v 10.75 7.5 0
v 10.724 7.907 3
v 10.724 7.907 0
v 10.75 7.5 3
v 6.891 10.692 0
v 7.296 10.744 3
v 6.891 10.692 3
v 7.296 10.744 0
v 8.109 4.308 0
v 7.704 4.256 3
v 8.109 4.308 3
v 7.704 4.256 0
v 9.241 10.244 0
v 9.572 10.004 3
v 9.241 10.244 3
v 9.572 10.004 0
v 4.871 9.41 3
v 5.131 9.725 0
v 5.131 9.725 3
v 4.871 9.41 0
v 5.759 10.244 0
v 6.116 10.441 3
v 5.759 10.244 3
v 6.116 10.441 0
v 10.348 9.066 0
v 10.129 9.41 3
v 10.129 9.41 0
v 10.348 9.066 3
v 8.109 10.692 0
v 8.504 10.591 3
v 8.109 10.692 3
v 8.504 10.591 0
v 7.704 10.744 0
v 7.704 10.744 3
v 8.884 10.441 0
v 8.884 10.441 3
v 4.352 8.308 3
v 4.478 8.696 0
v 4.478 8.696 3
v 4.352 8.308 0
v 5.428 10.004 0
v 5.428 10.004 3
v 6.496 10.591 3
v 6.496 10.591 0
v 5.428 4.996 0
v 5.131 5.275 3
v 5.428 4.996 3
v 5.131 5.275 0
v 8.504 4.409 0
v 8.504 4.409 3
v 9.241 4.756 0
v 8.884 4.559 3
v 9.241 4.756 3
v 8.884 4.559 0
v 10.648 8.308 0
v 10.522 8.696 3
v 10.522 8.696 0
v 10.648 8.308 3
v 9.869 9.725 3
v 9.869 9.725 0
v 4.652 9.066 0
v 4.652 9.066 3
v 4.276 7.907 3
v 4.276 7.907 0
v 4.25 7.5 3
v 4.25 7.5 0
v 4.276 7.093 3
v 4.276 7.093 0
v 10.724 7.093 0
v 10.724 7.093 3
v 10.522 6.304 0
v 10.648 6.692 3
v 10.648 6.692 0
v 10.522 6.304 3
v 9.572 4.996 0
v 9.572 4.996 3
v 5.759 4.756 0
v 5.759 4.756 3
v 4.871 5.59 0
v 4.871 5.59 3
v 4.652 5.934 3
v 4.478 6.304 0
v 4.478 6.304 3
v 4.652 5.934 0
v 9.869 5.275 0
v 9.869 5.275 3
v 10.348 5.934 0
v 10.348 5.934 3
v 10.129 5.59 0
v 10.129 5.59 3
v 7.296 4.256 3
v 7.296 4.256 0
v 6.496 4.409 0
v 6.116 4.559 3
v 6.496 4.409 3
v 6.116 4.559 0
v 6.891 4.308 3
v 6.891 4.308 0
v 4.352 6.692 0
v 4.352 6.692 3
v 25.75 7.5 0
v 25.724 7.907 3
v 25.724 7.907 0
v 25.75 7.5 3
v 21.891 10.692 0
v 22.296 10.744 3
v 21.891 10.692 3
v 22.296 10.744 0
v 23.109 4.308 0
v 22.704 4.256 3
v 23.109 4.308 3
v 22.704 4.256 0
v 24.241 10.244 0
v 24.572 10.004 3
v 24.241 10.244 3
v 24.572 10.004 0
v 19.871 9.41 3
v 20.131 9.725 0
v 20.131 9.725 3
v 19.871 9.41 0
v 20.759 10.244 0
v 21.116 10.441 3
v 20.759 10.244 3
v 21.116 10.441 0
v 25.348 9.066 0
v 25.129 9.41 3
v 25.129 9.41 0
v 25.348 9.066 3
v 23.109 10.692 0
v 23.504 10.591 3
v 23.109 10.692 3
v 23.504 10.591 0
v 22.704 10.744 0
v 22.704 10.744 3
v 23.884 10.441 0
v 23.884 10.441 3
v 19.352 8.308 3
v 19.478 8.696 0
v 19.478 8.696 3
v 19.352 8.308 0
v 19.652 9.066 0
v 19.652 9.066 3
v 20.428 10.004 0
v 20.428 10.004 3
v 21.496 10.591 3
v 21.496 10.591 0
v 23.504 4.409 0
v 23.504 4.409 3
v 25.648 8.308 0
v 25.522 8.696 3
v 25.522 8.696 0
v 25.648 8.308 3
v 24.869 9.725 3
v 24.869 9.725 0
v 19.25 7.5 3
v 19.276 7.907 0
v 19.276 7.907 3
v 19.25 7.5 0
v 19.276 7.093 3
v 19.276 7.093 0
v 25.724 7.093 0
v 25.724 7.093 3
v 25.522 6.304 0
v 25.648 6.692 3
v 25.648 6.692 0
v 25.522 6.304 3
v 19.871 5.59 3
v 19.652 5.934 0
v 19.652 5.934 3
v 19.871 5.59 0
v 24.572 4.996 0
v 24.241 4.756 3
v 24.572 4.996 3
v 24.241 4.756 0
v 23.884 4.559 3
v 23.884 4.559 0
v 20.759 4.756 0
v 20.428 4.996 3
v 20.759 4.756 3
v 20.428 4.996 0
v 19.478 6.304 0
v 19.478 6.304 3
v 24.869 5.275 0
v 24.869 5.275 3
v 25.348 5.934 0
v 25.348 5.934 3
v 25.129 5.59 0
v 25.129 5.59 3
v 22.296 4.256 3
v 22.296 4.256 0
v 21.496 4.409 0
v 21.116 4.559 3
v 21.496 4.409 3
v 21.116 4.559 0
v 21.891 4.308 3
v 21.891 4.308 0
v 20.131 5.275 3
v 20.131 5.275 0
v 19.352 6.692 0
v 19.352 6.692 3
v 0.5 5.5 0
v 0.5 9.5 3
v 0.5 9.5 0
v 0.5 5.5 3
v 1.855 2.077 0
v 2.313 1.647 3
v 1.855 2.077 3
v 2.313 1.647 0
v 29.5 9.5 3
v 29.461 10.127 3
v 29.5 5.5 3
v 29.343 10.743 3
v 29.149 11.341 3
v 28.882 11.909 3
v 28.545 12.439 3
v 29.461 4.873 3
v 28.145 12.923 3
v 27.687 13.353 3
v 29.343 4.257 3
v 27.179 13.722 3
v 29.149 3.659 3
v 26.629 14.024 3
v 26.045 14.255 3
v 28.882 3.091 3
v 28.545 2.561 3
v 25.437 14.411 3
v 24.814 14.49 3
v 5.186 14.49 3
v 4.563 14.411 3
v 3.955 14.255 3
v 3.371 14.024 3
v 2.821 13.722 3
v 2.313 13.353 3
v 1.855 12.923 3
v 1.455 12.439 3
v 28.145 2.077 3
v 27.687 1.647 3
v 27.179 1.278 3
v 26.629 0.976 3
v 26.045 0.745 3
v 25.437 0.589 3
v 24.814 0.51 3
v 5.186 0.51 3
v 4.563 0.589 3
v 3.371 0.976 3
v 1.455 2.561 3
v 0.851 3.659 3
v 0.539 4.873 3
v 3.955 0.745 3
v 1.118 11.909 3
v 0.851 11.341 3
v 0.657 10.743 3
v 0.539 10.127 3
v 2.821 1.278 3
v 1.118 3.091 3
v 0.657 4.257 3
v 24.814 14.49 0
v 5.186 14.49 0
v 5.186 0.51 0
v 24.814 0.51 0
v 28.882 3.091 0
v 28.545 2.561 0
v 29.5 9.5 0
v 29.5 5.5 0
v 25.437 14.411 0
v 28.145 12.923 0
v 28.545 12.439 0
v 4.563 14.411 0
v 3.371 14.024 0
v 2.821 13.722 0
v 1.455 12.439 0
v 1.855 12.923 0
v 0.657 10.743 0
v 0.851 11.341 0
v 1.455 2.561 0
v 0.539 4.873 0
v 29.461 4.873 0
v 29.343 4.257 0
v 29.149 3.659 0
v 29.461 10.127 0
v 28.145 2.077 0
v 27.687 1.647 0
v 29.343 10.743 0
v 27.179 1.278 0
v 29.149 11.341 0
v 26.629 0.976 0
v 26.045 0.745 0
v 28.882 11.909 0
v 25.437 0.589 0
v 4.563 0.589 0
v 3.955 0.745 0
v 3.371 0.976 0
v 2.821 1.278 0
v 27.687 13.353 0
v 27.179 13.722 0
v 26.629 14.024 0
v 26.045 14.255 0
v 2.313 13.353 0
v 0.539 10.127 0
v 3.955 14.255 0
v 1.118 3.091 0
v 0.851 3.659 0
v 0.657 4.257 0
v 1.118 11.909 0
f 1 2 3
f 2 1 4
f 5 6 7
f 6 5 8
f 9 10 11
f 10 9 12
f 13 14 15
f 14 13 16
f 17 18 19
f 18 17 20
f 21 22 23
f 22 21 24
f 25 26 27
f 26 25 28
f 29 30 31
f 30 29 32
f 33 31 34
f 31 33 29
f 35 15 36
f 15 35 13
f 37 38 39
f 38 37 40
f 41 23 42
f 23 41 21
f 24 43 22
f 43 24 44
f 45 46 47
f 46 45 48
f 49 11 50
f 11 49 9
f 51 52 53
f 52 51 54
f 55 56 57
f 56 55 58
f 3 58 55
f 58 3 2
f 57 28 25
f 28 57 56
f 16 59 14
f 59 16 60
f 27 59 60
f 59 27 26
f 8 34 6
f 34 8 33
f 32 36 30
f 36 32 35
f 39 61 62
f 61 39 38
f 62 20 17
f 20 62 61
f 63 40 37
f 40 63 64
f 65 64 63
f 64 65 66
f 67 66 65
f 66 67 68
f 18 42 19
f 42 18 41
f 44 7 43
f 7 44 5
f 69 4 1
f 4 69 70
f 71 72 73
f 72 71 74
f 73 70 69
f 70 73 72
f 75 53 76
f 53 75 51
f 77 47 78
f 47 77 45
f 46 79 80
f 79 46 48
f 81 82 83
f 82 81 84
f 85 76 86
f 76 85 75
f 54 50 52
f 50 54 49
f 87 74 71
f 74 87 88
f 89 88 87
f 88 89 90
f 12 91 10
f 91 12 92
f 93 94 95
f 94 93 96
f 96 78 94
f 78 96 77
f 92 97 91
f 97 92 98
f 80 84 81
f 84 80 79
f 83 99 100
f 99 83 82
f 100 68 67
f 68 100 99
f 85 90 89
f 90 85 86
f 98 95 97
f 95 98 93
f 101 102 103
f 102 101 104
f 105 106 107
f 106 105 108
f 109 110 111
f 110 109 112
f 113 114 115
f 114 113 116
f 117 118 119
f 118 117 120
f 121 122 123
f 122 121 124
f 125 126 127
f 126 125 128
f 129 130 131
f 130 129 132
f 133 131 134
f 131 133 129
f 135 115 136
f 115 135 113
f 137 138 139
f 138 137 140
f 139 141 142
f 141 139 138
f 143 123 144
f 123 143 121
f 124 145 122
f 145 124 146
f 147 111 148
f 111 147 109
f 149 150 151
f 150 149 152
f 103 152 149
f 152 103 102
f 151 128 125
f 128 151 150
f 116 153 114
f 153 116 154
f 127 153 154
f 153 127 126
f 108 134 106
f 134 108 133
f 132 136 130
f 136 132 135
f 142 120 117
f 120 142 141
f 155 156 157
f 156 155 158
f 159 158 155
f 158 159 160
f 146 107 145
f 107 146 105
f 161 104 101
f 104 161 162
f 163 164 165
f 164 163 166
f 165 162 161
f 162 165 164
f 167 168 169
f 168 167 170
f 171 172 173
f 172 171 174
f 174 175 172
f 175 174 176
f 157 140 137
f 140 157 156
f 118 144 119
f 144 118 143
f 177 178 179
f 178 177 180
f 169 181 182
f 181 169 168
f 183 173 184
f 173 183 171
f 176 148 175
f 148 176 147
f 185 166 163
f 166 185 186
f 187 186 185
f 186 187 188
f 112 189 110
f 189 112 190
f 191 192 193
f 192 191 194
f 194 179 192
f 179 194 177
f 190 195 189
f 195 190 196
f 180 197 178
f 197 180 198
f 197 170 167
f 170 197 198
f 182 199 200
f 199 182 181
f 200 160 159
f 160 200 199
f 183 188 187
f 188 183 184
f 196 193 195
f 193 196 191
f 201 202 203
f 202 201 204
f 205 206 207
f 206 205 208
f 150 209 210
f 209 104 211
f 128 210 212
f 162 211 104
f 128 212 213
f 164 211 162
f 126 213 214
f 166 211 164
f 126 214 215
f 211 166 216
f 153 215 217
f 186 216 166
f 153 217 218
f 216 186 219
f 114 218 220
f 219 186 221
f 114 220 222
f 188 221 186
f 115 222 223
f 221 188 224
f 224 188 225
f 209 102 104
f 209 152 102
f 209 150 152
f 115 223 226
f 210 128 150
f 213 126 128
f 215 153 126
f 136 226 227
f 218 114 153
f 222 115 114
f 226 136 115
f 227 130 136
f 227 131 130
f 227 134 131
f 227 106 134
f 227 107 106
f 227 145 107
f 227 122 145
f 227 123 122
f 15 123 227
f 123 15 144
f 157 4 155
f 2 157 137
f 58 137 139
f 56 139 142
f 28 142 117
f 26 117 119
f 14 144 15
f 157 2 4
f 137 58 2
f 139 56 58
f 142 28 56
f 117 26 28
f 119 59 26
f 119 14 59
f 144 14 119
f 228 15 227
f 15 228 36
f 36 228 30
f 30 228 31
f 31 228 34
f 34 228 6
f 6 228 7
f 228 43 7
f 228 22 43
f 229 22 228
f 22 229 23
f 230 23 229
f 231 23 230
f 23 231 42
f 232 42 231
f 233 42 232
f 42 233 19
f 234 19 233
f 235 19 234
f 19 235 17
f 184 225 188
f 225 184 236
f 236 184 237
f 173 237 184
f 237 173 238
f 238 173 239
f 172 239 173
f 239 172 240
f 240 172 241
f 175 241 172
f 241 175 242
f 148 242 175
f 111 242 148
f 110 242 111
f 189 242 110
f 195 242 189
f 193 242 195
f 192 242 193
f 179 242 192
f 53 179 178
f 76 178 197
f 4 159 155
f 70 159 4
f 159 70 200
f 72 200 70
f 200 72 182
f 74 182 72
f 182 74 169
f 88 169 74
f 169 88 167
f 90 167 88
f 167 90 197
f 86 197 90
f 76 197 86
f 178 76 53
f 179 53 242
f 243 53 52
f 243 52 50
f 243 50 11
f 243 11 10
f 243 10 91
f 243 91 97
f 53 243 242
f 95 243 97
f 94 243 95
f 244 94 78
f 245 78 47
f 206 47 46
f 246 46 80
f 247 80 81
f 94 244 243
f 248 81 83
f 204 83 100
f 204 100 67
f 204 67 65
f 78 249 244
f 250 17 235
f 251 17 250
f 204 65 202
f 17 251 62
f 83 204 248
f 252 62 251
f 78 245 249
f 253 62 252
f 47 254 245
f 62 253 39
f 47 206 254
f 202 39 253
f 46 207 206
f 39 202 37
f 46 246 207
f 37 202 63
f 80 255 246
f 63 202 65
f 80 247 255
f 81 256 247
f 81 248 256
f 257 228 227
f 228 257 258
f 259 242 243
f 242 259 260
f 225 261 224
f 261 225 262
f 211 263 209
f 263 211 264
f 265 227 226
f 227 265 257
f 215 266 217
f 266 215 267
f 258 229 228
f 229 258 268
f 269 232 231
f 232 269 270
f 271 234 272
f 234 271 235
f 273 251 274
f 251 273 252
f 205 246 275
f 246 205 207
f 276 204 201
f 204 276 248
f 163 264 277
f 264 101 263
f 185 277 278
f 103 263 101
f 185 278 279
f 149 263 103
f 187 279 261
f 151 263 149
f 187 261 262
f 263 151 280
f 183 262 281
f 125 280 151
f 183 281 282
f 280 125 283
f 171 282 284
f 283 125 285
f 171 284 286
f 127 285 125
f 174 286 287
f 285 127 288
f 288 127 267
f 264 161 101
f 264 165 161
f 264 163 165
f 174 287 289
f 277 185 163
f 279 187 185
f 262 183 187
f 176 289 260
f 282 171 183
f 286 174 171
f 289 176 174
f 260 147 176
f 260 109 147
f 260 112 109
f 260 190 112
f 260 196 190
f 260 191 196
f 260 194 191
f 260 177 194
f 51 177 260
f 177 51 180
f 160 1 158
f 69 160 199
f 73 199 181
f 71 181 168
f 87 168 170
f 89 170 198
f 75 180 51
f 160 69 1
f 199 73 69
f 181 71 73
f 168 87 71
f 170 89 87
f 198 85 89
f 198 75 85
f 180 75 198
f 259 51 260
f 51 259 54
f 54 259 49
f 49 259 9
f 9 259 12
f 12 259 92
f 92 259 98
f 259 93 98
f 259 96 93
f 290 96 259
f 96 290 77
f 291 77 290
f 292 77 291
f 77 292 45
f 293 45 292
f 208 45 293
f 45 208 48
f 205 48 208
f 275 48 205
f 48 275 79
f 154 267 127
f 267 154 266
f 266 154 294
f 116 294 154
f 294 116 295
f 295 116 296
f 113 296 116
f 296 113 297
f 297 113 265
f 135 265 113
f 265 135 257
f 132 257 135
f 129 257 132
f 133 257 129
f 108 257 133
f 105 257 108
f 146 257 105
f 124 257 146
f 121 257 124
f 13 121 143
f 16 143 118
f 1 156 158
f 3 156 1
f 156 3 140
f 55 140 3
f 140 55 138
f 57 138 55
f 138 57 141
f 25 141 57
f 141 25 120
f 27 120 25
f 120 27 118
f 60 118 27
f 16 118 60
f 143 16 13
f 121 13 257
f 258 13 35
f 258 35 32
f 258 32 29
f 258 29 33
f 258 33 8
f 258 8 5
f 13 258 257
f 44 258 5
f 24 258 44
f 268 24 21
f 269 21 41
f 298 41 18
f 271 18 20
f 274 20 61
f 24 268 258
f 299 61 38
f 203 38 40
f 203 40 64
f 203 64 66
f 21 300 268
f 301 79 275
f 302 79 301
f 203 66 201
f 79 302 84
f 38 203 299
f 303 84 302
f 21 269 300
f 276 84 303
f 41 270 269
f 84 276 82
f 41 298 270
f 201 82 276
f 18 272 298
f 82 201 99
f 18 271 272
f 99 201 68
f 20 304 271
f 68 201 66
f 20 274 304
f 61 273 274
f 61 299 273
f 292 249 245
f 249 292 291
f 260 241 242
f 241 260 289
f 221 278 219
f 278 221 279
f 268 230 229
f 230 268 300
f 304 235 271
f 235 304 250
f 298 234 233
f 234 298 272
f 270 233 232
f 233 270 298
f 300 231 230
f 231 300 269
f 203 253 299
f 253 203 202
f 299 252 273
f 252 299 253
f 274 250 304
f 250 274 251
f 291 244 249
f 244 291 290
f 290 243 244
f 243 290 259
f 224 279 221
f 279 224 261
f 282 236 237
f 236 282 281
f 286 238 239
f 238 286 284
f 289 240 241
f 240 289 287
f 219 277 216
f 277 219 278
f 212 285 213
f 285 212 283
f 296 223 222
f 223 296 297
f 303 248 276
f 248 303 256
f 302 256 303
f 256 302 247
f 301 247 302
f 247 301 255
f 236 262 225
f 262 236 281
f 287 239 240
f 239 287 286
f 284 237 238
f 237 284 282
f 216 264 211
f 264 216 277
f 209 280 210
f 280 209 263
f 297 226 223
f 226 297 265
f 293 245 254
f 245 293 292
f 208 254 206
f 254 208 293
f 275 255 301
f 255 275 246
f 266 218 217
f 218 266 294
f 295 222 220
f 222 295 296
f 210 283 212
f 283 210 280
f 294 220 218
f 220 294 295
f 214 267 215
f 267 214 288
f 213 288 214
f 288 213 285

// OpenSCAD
// Generated by SolidPython 1.1.3 on 2023-01-30 13:24:47
$fn = 50;


difference() {
	union() {
		translate(v = [15.0000000000, 7.5000000000, 0]) {
			rotate(a = [0, 0, 0]) {
				hull() {
					translate(v = [-9.5000000000, 2.0000000000, 0]) {
						rotate(a = [0, 0, 0]) {
							translate(v = [0, 0, 0]) {
								rotate(a = [0, 0, 0]) {
									cylinder(h = 3, r = 5);
								}
							}
						}
					}
					translate(v = [9.5000000000, 2.0000000000, 0]) {
						rotate(a = [0, 0, 0]) {
							translate(v = [0, 0, 0]) {
								rotate(a = [0, 0, 0]) {
									cylinder(h = 3, r = 5);
								}
							}
						}
					}
					translate(v = [-9.5000000000, -2.0000000000, 0]) {
						rotate(a = [0, 0, 0]) {
							translate(v = [0, 0, 0]) {
								rotate(a = [0, 0, 0]) {
									cylinder(h = 3, r = 5);
								}
							}
						}
					}
					translate(v = [9.5000000000, -2.0000000000, 0]) {
						rotate(a = [0, 0, 0]) {
							translate(v = [0, 0, 0]) {
								rotate(a = [0, 0, 0]) {
									cylinder(h = 3, r = 5);
								}
							}
						}
					}
				}
			}
		}
	}
	union() {
		translate(v = [7.5000000000, 7.5000000000, 0]) {
			rotate(a = [0, 0, 0]) {
				translate(v = [0, 0, -50]) {
					rotate(a = [0, 0, 0]) {
						cylinder(h = 100, r = 3.2500000000);
					}
				}
			}
		}
		translate(v = [22.5000000000, 7.5000000000, 0]) {
			rotate(a = [0, 0, 0]) {
				translate(v = [0, 0, -50]) {
					rotate(a = [0, 0, 0]) {
						cylinder(h = 100, r = 3.2500000000);
					}
				}
			}
		}
	}
}
/***********************************************
*********      SolidPython code:      **********
************************************************
 
from solid import *
import os
import subprocess

import oomB

import opsc_library_gen

mode = "laser"
#mode = "3d_print"

defined_objects = {}

radius_dict = {}
countersunk_dict = {}


def set_mode(m):
    global mode
    mode = m
    radius_dict['M6'] = 6.5/2
    radius_dict['M3'] = 3.3/2
    if mode == "laser":
        radius_dict['M6'] = 6/2
        radius_dict['M3'] = 3/2

    countersunk_dict['M3'] = {}
    countersunk_dict['M3']['little_rad'] = radius_dict['M3']
    countersunk_dict['M3']['big_rad'] = (5.5+0.6)/2
    if mode == "laser":
        countersunk_dict['M3']['big_rad'] = (4.75+0.6)/2
        countersunk_dict['M3']['little_rad'] = (4.75+0.6)/2

    countersunk_dict['M3']['height'] = 1.7


def opsc_make_object(filename, objects, save_type="none",resolution=50, layers = 1, tilediff = 200, mode="laser"):
    set_mode(mode)
    save_type = save_type.lower()
    os.makedirs(os.path.dirname(filename), exist_ok=True)
    final_object = opsc_get_object(objects)
    # Save the final object to the specified filename    
    scad_render_to_file(final_object, filename, file_header='$fn = %s;' % resolution, include_orig_code=True)
    if mode == "laser":
        filename_laser = filename.replace(".scad","-flat.scad")
        scad_render_to_file(getLaser(final_object, layers=layers, tilediff=tilediff), filename_laser, file_header='$fn = %s;' % resolution, include_orig_code=True)
        if save_type == "all":
            saveToAll(filename_laser)
        elif save_type == "dxf":
            saveToDxf(filename_laser)
    if save_type == "all":
        saveToAll(filename)
    elif save_type == "dxf":
        saveToDxf(filename)


def opsc_get_object(objects):
    # Create the solidpython objects
    positive_objects = [get_opsc_item(obj) for obj in objects if obj['type'] == 'positive']
    negative_objects = [get_opsc_item(obj) for obj in objects if obj['type'] == 'negative']
    # Union the positive objects
    positive_object = union()(*positive_objects)
    # Union the negative objects
    negative_object = union()(*negative_objects)
    # Create the final object by subtracting the negative objects from the positive objects
    return difference()(positive_object, negative_object)

def get_opsc_item(params):
    # A dictionary to map radius string values to numerical values
    #radius_dict = {'small': 5, 'medium': 10, 'large': 15}
    # An array of function names for basic shapes
    basic_shapes = ['cube', 'sphere', 'cylinder']
    
    # An array of function names for other shapes
    other_shapes = ['hole', 'slot', 'rounded_rectangle', 'countersunk']
    


    # Convert radius to r if present, and remove radius from the params dictionary
    if 'radius' in params:
        if isinstance(params['radius'], str):
            # Use the radius_dict to map the radius string value to a numerical value
            params['r'] = radius_dict[params['radius']]
        else:
            params['r'] = params['radius']
        del params['radius']
    

    # Check if the object type is a basic shape
    if params['shape'] in basic_shapes:
        # Remove shape and unexpected dictionary values
        allowed_keys = {'size', 'r', 'r1', 'r2', 'd', 'h', 'rw', 'rh', 'dw', 'dh'}
        shape_params = {k: v for k, v in params.items() if k in allowed_keys}

        # Call the corresponding function for the shape parameter, using ** notation to pass the shape_params dictionary as keyword arguments
        return get_opsc_transform(params,globals()[params['shape']](**shape_params))
    
    # If the object type is not a basic shape, check if it's a defined object or one of the other shapes
    elif params['shape'] in other_shapes:
        # Call the corresponding function for the shape parameter, passing the params dictionary as an argument
        p2 = copy.deepcopy(params)
        p2["pos"] = [0,0,0]
        return get_opsc_transform(params,globals()[params['shape']](p2))
    
    # If the object is not a basic shape or a defined object, try to import it from a .scad file
    else:
        obj = defined_objects[params['shape']]
        return get_opsc_transform(params,obj)

def get_opsc_transform(params, solid_obj):
    # Rotate the object based on the 'rot' field in the params dictionary, or the 'rotX', 'rotY', and 'rotZ' fields if 'rot' is not present
    rot = params.get('rot', [])
    if rot:
        rotX, rotY, rotZ = rot
    else:
        rotX = params.get('rotX', 0)
        rotY = params.get('rotY', 0)
        rotZ = params.get('rotZ', 0)
    solid_obj = rotate([rotX, rotY, rotZ])(solid_obj)

    # Translate the object based on the 'pos' field in the params dictionary, or the 'x', 'y', and 'z' fields if 'pos' is not present
    pos = params.get('pos', [])
    if pos:
        x, y, z = pos
    else:
        x = params.get('x', 0)
        y = params.get('y', 0)
        z = params.get('z', 0)
    solid_obj = translate([x, y, z])(solid_obj)
    return solid_obj


import random

def opsc_easy_array(type, shape, repeats, pos_start, shift_arr, **kwargs):
    for i in range(0,3):
        repeats.append(1)
        pos_start.append(0)
        shift_arr.append(0)
    return_objects = []

    for x in range(0,repeats[0]):
        for y in range(0,repeats[1]):
            for z in range(0,repeats[2]):
                return_objects.append(opsc_easy(type, shape, pos=[pos_start[0]+x*shift_arr[0],pos_start[1]+y*shift_arr[1],pos_start[2]+z*shift_arr[2]], **kwargs))
    return return_objects                



def opsc_easy(type, shape, **kwargs):
    obj = {
        'type': type,
        'shape': shape
    }
    for param in ['size', 'r', 'r1', 'r2', 'd', 'h', 'rw', 'rh', 'dw', 'dh', 'pos', 'x', 'y', 'z', 'rot', 'rotX', 'rotY', 'rotZ', "w"]:
        if param in kwargs:
            obj[param] = kwargs[param]
    return obj

def hole(params):
    p2 = copy.deepcopy(params)  
    # Check if the radius is a string and replace it with the corresponding value from the dictionary
    if isinstance(p2['r'], str):
        p2['r'] = radius_dict[p2['r']]
    
    # Set the height to 100 if not specified
    if 'h' not in p2:
        p2['h'] = 100
        p2["pos"] = [0,0,-50]
    p2["center"] = True
    # Create the cylinder object
    p2["shape"] = "cylinder"
    p2["type"] = "positive"

    return get_opsc_item(p2)

import copy

def countersunk(params):
    p2 = copy.deepcopy(params)
    counter_rad = p2['r']
    p2['r'] = radius_dict[p2['r']]
    hp = copy.deepcopy(p2)
    hp["type"] = "positive"
    hp["shape"] = "hole"
    del hp["rot"]
    hol = get_opsc_item(hp)
    
    cp = copy.deepcopy(p2)
    cp["h"] = countersunk_dict[counter_rad]["height"]
    cp["r2"] = countersunk_dict[counter_rad]["little_rad"]
    cp["r1"] = countersunk_dict[counter_rad]["big_rad"]
    del cp["r"]
    del cp["rot"]
    cp["type"] = "positive"
    cp["shape"] = "cylinder"
    cp["pos"] = [0,0,0]

    top = get_opsc_item(cp)
    return union()(hol,top)



def slot(params):  
    p2 = copy.deepcopy(params) 
    if isinstance(p2['r'], str):
        p2['r'] = radius_dict[p2['r']]
    p2["type"] = "positive"
    p2["shape"] = "hole"
    del p2["rot"]
    p2["pos"] = [0,0,0]
    left = copy.deepcopy(p2)
    right = copy.deepcopy(p2)
    left["pos"][0] = p2["w"] / 2 - p2["r"] 
    
    right["pos"][0] = -p2["w"] / 2 + p2["r"] 
    pass
    leftObj = get_opsc_item(left)
    rightObj = get_opsc_item(right)
    return hull()(leftObj, rightObj)

def rounded_rectangle(params):   
    p2 = copy.deepcopy(params) 
    p2["h"] = p2["size"][2]
    p2["pos"] = p2.get("pos", [0, 0, 0]) 
    p2["type"] = "positive"
    p2["shape"] = "hole"
    p2["pos"] = [0,0,0]
    
    if 'rot' in p2:
        del p2["rot"]   
    if 'r' not in p2:
        p2["r"] = 5 
    tl = copy.deepcopy(p2)
    tr = copy.deepcopy(p2)
    bl = copy.deepcopy(p2)
    br = copy.deepcopy(p2)
    tl["pos"][0] = -(p2["size"][0] - p2["r"]*2)/2
    tl["pos"][1] = (p2["size"][1] - p2["r"]*2)/2
    tr["pos"][0] = (p2["size"][0] - p2["r"]*2)/2
    tr["pos"][1] = (p2["size"][1] - p2["r"]*2)/2
    bl["pos"][0] = -(p2["size"][0] - p2["r"]*2)/2
    bl["pos"][1] = -(p2["size"][1] - p2["r"]*2)/2
    br["pos"][0] = (p2["size"][0] - p2["r"]*2)/2
    br["pos"][1] = -(p2["size"][1] - p2["r"]*2)/2
    del tl["size"]
    del tr["size"]
    del bl["size"]
    del br["size"]
    tlo = get_opsc_item(tl)
    tro = get_opsc_item(tr)
    blo = get_opsc_item(bl)
    bro = get_opsc_item(br)    
    return hull()(tlo, tro, blo, bro)



def import_scad_object(filename):
    # Import the .scad file and convert it to a solidpython object
    #filename = "parts"
    obj = import_scad(filename)
    return obj.main()
    


import os
import solid as solidpython

# A dictionary to store the defined objects


def load_scad_objects():
    opsc_library_gen.gen_library(defined_objects)

import random

def test(num_objects):
    objects = []
    for i in range(num_objects):
        # Choose a random shape
        #shape = random.choice(['cube', 'sphere', 'cylinder', 'hole', 'slot', "rounded_rectangle"])
        shape = random.choice(["rounded_rectangle"])

        # Choose a random type
        type = random.choice(['positive', 'negative'])
        
        # Create an empty object dictionary
        obj = {'shape': shape, 'type': type}
        
        # Set shape-specific parameters
        if obj['shape'] in ['cube']:
            obj['size'] =  [random.uniform(5, 15), random.uniform(5, 15), random.uniform(5, 15)]
        if obj['shape'] in ['rounded_rectangle']:
            obj['size'] =  [random.uniform(5, 15), random.uniform(5, 15), random.uniform(5, 15)]
            obj['r'] = random.uniform(0.5, 5)
        elif obj['shape'] == 'sphere':
            obj['r'] = random.uniform(5, 15)
        elif obj['shape'] in ['cylinder', 'hole']:
            obj['r'] = random.uniform(0.5, 5)
            obj['h'] = random.uniform(5, 15)
        elif obj['shape'] == 'slot':
            obj['r'] = random.uniform(0.5, 5)
            obj['h'] = random.uniform(5, 15)
            obj['w'] = random.uniform(5, 15)
        
        # Set a random position and rotation
        obj['pos'] = [random.uniform(-20, 20), random.uniform(-20, 20), random.uniform(-20, 20)]
        obj['rot'] = [random.uniform(-180, 180), random.uniform(-180, 180), random.uniform(-180, 180)]
        
        # Add the object to the list
        objects.append(obj)
    return objects

####### old file saving
def saveToAll(fileIn):
    saveToDxf(fileIn)
    saveToPng(fileIn)
    saveToStl(fileIn)
    saveToSvg(fileIn)

def saveToDxf(fileIn, fileOut="", copy_to_laser=True):
    if fileOut == "":
        fileOut = fileIn.replace(".scad",".dxf")
    saveToFile(fileIn, fileOut)


    
def saveToPng(fileIn, fileOut="",extra="--render"):
    if fileOut == "":
        fileOut = fileIn.replace(".scad",".png")
    saveToFile(fileIn, fileOut)

def saveToStl(fileIn, fileOut=""):
    if fileOut == "":
        fileOut = fileIn.replace(".scad",".stl")
    saveToFile(fileIn, fileOut)
    
def saveToSvg(fileIn, fileOut=""):
    if fileOut == "":
        fileOut = fileIn.replace(".scad",".svg")
    saveToFile(fileIn, fileOut)

def saveToFile(fileIn, fileOut,extra=""):
    #extra = extra + " --colorscheme Tomorrow"

    launchStr = 'openscad -o "' + fileOut + '"' + extra + ' "' + fileIn + '"'
    if ".png" in fileOut:
        launchStr = launchStr + " --render"
    print("            saveToFile launch string: " + launchStr)
    subprocess.run(launchStr)
    x=0

def getLaser(final_object,start=1.5,layers=1,thickness=3,tilediff=200):
        rv= []

        for x in range(layers):
            rv.append(translate([0,x*tilediff,0])(
                    projection()(
                        intersection()(translate([-500,-500,start+x*thickness])(cube(size=[1000,1000,0.1])),
                            final_object
                        )
                    )
            )
            )
            
        return union()(rv)

set_mode("laser")
load_scad_objects() 
 
************************************************/
